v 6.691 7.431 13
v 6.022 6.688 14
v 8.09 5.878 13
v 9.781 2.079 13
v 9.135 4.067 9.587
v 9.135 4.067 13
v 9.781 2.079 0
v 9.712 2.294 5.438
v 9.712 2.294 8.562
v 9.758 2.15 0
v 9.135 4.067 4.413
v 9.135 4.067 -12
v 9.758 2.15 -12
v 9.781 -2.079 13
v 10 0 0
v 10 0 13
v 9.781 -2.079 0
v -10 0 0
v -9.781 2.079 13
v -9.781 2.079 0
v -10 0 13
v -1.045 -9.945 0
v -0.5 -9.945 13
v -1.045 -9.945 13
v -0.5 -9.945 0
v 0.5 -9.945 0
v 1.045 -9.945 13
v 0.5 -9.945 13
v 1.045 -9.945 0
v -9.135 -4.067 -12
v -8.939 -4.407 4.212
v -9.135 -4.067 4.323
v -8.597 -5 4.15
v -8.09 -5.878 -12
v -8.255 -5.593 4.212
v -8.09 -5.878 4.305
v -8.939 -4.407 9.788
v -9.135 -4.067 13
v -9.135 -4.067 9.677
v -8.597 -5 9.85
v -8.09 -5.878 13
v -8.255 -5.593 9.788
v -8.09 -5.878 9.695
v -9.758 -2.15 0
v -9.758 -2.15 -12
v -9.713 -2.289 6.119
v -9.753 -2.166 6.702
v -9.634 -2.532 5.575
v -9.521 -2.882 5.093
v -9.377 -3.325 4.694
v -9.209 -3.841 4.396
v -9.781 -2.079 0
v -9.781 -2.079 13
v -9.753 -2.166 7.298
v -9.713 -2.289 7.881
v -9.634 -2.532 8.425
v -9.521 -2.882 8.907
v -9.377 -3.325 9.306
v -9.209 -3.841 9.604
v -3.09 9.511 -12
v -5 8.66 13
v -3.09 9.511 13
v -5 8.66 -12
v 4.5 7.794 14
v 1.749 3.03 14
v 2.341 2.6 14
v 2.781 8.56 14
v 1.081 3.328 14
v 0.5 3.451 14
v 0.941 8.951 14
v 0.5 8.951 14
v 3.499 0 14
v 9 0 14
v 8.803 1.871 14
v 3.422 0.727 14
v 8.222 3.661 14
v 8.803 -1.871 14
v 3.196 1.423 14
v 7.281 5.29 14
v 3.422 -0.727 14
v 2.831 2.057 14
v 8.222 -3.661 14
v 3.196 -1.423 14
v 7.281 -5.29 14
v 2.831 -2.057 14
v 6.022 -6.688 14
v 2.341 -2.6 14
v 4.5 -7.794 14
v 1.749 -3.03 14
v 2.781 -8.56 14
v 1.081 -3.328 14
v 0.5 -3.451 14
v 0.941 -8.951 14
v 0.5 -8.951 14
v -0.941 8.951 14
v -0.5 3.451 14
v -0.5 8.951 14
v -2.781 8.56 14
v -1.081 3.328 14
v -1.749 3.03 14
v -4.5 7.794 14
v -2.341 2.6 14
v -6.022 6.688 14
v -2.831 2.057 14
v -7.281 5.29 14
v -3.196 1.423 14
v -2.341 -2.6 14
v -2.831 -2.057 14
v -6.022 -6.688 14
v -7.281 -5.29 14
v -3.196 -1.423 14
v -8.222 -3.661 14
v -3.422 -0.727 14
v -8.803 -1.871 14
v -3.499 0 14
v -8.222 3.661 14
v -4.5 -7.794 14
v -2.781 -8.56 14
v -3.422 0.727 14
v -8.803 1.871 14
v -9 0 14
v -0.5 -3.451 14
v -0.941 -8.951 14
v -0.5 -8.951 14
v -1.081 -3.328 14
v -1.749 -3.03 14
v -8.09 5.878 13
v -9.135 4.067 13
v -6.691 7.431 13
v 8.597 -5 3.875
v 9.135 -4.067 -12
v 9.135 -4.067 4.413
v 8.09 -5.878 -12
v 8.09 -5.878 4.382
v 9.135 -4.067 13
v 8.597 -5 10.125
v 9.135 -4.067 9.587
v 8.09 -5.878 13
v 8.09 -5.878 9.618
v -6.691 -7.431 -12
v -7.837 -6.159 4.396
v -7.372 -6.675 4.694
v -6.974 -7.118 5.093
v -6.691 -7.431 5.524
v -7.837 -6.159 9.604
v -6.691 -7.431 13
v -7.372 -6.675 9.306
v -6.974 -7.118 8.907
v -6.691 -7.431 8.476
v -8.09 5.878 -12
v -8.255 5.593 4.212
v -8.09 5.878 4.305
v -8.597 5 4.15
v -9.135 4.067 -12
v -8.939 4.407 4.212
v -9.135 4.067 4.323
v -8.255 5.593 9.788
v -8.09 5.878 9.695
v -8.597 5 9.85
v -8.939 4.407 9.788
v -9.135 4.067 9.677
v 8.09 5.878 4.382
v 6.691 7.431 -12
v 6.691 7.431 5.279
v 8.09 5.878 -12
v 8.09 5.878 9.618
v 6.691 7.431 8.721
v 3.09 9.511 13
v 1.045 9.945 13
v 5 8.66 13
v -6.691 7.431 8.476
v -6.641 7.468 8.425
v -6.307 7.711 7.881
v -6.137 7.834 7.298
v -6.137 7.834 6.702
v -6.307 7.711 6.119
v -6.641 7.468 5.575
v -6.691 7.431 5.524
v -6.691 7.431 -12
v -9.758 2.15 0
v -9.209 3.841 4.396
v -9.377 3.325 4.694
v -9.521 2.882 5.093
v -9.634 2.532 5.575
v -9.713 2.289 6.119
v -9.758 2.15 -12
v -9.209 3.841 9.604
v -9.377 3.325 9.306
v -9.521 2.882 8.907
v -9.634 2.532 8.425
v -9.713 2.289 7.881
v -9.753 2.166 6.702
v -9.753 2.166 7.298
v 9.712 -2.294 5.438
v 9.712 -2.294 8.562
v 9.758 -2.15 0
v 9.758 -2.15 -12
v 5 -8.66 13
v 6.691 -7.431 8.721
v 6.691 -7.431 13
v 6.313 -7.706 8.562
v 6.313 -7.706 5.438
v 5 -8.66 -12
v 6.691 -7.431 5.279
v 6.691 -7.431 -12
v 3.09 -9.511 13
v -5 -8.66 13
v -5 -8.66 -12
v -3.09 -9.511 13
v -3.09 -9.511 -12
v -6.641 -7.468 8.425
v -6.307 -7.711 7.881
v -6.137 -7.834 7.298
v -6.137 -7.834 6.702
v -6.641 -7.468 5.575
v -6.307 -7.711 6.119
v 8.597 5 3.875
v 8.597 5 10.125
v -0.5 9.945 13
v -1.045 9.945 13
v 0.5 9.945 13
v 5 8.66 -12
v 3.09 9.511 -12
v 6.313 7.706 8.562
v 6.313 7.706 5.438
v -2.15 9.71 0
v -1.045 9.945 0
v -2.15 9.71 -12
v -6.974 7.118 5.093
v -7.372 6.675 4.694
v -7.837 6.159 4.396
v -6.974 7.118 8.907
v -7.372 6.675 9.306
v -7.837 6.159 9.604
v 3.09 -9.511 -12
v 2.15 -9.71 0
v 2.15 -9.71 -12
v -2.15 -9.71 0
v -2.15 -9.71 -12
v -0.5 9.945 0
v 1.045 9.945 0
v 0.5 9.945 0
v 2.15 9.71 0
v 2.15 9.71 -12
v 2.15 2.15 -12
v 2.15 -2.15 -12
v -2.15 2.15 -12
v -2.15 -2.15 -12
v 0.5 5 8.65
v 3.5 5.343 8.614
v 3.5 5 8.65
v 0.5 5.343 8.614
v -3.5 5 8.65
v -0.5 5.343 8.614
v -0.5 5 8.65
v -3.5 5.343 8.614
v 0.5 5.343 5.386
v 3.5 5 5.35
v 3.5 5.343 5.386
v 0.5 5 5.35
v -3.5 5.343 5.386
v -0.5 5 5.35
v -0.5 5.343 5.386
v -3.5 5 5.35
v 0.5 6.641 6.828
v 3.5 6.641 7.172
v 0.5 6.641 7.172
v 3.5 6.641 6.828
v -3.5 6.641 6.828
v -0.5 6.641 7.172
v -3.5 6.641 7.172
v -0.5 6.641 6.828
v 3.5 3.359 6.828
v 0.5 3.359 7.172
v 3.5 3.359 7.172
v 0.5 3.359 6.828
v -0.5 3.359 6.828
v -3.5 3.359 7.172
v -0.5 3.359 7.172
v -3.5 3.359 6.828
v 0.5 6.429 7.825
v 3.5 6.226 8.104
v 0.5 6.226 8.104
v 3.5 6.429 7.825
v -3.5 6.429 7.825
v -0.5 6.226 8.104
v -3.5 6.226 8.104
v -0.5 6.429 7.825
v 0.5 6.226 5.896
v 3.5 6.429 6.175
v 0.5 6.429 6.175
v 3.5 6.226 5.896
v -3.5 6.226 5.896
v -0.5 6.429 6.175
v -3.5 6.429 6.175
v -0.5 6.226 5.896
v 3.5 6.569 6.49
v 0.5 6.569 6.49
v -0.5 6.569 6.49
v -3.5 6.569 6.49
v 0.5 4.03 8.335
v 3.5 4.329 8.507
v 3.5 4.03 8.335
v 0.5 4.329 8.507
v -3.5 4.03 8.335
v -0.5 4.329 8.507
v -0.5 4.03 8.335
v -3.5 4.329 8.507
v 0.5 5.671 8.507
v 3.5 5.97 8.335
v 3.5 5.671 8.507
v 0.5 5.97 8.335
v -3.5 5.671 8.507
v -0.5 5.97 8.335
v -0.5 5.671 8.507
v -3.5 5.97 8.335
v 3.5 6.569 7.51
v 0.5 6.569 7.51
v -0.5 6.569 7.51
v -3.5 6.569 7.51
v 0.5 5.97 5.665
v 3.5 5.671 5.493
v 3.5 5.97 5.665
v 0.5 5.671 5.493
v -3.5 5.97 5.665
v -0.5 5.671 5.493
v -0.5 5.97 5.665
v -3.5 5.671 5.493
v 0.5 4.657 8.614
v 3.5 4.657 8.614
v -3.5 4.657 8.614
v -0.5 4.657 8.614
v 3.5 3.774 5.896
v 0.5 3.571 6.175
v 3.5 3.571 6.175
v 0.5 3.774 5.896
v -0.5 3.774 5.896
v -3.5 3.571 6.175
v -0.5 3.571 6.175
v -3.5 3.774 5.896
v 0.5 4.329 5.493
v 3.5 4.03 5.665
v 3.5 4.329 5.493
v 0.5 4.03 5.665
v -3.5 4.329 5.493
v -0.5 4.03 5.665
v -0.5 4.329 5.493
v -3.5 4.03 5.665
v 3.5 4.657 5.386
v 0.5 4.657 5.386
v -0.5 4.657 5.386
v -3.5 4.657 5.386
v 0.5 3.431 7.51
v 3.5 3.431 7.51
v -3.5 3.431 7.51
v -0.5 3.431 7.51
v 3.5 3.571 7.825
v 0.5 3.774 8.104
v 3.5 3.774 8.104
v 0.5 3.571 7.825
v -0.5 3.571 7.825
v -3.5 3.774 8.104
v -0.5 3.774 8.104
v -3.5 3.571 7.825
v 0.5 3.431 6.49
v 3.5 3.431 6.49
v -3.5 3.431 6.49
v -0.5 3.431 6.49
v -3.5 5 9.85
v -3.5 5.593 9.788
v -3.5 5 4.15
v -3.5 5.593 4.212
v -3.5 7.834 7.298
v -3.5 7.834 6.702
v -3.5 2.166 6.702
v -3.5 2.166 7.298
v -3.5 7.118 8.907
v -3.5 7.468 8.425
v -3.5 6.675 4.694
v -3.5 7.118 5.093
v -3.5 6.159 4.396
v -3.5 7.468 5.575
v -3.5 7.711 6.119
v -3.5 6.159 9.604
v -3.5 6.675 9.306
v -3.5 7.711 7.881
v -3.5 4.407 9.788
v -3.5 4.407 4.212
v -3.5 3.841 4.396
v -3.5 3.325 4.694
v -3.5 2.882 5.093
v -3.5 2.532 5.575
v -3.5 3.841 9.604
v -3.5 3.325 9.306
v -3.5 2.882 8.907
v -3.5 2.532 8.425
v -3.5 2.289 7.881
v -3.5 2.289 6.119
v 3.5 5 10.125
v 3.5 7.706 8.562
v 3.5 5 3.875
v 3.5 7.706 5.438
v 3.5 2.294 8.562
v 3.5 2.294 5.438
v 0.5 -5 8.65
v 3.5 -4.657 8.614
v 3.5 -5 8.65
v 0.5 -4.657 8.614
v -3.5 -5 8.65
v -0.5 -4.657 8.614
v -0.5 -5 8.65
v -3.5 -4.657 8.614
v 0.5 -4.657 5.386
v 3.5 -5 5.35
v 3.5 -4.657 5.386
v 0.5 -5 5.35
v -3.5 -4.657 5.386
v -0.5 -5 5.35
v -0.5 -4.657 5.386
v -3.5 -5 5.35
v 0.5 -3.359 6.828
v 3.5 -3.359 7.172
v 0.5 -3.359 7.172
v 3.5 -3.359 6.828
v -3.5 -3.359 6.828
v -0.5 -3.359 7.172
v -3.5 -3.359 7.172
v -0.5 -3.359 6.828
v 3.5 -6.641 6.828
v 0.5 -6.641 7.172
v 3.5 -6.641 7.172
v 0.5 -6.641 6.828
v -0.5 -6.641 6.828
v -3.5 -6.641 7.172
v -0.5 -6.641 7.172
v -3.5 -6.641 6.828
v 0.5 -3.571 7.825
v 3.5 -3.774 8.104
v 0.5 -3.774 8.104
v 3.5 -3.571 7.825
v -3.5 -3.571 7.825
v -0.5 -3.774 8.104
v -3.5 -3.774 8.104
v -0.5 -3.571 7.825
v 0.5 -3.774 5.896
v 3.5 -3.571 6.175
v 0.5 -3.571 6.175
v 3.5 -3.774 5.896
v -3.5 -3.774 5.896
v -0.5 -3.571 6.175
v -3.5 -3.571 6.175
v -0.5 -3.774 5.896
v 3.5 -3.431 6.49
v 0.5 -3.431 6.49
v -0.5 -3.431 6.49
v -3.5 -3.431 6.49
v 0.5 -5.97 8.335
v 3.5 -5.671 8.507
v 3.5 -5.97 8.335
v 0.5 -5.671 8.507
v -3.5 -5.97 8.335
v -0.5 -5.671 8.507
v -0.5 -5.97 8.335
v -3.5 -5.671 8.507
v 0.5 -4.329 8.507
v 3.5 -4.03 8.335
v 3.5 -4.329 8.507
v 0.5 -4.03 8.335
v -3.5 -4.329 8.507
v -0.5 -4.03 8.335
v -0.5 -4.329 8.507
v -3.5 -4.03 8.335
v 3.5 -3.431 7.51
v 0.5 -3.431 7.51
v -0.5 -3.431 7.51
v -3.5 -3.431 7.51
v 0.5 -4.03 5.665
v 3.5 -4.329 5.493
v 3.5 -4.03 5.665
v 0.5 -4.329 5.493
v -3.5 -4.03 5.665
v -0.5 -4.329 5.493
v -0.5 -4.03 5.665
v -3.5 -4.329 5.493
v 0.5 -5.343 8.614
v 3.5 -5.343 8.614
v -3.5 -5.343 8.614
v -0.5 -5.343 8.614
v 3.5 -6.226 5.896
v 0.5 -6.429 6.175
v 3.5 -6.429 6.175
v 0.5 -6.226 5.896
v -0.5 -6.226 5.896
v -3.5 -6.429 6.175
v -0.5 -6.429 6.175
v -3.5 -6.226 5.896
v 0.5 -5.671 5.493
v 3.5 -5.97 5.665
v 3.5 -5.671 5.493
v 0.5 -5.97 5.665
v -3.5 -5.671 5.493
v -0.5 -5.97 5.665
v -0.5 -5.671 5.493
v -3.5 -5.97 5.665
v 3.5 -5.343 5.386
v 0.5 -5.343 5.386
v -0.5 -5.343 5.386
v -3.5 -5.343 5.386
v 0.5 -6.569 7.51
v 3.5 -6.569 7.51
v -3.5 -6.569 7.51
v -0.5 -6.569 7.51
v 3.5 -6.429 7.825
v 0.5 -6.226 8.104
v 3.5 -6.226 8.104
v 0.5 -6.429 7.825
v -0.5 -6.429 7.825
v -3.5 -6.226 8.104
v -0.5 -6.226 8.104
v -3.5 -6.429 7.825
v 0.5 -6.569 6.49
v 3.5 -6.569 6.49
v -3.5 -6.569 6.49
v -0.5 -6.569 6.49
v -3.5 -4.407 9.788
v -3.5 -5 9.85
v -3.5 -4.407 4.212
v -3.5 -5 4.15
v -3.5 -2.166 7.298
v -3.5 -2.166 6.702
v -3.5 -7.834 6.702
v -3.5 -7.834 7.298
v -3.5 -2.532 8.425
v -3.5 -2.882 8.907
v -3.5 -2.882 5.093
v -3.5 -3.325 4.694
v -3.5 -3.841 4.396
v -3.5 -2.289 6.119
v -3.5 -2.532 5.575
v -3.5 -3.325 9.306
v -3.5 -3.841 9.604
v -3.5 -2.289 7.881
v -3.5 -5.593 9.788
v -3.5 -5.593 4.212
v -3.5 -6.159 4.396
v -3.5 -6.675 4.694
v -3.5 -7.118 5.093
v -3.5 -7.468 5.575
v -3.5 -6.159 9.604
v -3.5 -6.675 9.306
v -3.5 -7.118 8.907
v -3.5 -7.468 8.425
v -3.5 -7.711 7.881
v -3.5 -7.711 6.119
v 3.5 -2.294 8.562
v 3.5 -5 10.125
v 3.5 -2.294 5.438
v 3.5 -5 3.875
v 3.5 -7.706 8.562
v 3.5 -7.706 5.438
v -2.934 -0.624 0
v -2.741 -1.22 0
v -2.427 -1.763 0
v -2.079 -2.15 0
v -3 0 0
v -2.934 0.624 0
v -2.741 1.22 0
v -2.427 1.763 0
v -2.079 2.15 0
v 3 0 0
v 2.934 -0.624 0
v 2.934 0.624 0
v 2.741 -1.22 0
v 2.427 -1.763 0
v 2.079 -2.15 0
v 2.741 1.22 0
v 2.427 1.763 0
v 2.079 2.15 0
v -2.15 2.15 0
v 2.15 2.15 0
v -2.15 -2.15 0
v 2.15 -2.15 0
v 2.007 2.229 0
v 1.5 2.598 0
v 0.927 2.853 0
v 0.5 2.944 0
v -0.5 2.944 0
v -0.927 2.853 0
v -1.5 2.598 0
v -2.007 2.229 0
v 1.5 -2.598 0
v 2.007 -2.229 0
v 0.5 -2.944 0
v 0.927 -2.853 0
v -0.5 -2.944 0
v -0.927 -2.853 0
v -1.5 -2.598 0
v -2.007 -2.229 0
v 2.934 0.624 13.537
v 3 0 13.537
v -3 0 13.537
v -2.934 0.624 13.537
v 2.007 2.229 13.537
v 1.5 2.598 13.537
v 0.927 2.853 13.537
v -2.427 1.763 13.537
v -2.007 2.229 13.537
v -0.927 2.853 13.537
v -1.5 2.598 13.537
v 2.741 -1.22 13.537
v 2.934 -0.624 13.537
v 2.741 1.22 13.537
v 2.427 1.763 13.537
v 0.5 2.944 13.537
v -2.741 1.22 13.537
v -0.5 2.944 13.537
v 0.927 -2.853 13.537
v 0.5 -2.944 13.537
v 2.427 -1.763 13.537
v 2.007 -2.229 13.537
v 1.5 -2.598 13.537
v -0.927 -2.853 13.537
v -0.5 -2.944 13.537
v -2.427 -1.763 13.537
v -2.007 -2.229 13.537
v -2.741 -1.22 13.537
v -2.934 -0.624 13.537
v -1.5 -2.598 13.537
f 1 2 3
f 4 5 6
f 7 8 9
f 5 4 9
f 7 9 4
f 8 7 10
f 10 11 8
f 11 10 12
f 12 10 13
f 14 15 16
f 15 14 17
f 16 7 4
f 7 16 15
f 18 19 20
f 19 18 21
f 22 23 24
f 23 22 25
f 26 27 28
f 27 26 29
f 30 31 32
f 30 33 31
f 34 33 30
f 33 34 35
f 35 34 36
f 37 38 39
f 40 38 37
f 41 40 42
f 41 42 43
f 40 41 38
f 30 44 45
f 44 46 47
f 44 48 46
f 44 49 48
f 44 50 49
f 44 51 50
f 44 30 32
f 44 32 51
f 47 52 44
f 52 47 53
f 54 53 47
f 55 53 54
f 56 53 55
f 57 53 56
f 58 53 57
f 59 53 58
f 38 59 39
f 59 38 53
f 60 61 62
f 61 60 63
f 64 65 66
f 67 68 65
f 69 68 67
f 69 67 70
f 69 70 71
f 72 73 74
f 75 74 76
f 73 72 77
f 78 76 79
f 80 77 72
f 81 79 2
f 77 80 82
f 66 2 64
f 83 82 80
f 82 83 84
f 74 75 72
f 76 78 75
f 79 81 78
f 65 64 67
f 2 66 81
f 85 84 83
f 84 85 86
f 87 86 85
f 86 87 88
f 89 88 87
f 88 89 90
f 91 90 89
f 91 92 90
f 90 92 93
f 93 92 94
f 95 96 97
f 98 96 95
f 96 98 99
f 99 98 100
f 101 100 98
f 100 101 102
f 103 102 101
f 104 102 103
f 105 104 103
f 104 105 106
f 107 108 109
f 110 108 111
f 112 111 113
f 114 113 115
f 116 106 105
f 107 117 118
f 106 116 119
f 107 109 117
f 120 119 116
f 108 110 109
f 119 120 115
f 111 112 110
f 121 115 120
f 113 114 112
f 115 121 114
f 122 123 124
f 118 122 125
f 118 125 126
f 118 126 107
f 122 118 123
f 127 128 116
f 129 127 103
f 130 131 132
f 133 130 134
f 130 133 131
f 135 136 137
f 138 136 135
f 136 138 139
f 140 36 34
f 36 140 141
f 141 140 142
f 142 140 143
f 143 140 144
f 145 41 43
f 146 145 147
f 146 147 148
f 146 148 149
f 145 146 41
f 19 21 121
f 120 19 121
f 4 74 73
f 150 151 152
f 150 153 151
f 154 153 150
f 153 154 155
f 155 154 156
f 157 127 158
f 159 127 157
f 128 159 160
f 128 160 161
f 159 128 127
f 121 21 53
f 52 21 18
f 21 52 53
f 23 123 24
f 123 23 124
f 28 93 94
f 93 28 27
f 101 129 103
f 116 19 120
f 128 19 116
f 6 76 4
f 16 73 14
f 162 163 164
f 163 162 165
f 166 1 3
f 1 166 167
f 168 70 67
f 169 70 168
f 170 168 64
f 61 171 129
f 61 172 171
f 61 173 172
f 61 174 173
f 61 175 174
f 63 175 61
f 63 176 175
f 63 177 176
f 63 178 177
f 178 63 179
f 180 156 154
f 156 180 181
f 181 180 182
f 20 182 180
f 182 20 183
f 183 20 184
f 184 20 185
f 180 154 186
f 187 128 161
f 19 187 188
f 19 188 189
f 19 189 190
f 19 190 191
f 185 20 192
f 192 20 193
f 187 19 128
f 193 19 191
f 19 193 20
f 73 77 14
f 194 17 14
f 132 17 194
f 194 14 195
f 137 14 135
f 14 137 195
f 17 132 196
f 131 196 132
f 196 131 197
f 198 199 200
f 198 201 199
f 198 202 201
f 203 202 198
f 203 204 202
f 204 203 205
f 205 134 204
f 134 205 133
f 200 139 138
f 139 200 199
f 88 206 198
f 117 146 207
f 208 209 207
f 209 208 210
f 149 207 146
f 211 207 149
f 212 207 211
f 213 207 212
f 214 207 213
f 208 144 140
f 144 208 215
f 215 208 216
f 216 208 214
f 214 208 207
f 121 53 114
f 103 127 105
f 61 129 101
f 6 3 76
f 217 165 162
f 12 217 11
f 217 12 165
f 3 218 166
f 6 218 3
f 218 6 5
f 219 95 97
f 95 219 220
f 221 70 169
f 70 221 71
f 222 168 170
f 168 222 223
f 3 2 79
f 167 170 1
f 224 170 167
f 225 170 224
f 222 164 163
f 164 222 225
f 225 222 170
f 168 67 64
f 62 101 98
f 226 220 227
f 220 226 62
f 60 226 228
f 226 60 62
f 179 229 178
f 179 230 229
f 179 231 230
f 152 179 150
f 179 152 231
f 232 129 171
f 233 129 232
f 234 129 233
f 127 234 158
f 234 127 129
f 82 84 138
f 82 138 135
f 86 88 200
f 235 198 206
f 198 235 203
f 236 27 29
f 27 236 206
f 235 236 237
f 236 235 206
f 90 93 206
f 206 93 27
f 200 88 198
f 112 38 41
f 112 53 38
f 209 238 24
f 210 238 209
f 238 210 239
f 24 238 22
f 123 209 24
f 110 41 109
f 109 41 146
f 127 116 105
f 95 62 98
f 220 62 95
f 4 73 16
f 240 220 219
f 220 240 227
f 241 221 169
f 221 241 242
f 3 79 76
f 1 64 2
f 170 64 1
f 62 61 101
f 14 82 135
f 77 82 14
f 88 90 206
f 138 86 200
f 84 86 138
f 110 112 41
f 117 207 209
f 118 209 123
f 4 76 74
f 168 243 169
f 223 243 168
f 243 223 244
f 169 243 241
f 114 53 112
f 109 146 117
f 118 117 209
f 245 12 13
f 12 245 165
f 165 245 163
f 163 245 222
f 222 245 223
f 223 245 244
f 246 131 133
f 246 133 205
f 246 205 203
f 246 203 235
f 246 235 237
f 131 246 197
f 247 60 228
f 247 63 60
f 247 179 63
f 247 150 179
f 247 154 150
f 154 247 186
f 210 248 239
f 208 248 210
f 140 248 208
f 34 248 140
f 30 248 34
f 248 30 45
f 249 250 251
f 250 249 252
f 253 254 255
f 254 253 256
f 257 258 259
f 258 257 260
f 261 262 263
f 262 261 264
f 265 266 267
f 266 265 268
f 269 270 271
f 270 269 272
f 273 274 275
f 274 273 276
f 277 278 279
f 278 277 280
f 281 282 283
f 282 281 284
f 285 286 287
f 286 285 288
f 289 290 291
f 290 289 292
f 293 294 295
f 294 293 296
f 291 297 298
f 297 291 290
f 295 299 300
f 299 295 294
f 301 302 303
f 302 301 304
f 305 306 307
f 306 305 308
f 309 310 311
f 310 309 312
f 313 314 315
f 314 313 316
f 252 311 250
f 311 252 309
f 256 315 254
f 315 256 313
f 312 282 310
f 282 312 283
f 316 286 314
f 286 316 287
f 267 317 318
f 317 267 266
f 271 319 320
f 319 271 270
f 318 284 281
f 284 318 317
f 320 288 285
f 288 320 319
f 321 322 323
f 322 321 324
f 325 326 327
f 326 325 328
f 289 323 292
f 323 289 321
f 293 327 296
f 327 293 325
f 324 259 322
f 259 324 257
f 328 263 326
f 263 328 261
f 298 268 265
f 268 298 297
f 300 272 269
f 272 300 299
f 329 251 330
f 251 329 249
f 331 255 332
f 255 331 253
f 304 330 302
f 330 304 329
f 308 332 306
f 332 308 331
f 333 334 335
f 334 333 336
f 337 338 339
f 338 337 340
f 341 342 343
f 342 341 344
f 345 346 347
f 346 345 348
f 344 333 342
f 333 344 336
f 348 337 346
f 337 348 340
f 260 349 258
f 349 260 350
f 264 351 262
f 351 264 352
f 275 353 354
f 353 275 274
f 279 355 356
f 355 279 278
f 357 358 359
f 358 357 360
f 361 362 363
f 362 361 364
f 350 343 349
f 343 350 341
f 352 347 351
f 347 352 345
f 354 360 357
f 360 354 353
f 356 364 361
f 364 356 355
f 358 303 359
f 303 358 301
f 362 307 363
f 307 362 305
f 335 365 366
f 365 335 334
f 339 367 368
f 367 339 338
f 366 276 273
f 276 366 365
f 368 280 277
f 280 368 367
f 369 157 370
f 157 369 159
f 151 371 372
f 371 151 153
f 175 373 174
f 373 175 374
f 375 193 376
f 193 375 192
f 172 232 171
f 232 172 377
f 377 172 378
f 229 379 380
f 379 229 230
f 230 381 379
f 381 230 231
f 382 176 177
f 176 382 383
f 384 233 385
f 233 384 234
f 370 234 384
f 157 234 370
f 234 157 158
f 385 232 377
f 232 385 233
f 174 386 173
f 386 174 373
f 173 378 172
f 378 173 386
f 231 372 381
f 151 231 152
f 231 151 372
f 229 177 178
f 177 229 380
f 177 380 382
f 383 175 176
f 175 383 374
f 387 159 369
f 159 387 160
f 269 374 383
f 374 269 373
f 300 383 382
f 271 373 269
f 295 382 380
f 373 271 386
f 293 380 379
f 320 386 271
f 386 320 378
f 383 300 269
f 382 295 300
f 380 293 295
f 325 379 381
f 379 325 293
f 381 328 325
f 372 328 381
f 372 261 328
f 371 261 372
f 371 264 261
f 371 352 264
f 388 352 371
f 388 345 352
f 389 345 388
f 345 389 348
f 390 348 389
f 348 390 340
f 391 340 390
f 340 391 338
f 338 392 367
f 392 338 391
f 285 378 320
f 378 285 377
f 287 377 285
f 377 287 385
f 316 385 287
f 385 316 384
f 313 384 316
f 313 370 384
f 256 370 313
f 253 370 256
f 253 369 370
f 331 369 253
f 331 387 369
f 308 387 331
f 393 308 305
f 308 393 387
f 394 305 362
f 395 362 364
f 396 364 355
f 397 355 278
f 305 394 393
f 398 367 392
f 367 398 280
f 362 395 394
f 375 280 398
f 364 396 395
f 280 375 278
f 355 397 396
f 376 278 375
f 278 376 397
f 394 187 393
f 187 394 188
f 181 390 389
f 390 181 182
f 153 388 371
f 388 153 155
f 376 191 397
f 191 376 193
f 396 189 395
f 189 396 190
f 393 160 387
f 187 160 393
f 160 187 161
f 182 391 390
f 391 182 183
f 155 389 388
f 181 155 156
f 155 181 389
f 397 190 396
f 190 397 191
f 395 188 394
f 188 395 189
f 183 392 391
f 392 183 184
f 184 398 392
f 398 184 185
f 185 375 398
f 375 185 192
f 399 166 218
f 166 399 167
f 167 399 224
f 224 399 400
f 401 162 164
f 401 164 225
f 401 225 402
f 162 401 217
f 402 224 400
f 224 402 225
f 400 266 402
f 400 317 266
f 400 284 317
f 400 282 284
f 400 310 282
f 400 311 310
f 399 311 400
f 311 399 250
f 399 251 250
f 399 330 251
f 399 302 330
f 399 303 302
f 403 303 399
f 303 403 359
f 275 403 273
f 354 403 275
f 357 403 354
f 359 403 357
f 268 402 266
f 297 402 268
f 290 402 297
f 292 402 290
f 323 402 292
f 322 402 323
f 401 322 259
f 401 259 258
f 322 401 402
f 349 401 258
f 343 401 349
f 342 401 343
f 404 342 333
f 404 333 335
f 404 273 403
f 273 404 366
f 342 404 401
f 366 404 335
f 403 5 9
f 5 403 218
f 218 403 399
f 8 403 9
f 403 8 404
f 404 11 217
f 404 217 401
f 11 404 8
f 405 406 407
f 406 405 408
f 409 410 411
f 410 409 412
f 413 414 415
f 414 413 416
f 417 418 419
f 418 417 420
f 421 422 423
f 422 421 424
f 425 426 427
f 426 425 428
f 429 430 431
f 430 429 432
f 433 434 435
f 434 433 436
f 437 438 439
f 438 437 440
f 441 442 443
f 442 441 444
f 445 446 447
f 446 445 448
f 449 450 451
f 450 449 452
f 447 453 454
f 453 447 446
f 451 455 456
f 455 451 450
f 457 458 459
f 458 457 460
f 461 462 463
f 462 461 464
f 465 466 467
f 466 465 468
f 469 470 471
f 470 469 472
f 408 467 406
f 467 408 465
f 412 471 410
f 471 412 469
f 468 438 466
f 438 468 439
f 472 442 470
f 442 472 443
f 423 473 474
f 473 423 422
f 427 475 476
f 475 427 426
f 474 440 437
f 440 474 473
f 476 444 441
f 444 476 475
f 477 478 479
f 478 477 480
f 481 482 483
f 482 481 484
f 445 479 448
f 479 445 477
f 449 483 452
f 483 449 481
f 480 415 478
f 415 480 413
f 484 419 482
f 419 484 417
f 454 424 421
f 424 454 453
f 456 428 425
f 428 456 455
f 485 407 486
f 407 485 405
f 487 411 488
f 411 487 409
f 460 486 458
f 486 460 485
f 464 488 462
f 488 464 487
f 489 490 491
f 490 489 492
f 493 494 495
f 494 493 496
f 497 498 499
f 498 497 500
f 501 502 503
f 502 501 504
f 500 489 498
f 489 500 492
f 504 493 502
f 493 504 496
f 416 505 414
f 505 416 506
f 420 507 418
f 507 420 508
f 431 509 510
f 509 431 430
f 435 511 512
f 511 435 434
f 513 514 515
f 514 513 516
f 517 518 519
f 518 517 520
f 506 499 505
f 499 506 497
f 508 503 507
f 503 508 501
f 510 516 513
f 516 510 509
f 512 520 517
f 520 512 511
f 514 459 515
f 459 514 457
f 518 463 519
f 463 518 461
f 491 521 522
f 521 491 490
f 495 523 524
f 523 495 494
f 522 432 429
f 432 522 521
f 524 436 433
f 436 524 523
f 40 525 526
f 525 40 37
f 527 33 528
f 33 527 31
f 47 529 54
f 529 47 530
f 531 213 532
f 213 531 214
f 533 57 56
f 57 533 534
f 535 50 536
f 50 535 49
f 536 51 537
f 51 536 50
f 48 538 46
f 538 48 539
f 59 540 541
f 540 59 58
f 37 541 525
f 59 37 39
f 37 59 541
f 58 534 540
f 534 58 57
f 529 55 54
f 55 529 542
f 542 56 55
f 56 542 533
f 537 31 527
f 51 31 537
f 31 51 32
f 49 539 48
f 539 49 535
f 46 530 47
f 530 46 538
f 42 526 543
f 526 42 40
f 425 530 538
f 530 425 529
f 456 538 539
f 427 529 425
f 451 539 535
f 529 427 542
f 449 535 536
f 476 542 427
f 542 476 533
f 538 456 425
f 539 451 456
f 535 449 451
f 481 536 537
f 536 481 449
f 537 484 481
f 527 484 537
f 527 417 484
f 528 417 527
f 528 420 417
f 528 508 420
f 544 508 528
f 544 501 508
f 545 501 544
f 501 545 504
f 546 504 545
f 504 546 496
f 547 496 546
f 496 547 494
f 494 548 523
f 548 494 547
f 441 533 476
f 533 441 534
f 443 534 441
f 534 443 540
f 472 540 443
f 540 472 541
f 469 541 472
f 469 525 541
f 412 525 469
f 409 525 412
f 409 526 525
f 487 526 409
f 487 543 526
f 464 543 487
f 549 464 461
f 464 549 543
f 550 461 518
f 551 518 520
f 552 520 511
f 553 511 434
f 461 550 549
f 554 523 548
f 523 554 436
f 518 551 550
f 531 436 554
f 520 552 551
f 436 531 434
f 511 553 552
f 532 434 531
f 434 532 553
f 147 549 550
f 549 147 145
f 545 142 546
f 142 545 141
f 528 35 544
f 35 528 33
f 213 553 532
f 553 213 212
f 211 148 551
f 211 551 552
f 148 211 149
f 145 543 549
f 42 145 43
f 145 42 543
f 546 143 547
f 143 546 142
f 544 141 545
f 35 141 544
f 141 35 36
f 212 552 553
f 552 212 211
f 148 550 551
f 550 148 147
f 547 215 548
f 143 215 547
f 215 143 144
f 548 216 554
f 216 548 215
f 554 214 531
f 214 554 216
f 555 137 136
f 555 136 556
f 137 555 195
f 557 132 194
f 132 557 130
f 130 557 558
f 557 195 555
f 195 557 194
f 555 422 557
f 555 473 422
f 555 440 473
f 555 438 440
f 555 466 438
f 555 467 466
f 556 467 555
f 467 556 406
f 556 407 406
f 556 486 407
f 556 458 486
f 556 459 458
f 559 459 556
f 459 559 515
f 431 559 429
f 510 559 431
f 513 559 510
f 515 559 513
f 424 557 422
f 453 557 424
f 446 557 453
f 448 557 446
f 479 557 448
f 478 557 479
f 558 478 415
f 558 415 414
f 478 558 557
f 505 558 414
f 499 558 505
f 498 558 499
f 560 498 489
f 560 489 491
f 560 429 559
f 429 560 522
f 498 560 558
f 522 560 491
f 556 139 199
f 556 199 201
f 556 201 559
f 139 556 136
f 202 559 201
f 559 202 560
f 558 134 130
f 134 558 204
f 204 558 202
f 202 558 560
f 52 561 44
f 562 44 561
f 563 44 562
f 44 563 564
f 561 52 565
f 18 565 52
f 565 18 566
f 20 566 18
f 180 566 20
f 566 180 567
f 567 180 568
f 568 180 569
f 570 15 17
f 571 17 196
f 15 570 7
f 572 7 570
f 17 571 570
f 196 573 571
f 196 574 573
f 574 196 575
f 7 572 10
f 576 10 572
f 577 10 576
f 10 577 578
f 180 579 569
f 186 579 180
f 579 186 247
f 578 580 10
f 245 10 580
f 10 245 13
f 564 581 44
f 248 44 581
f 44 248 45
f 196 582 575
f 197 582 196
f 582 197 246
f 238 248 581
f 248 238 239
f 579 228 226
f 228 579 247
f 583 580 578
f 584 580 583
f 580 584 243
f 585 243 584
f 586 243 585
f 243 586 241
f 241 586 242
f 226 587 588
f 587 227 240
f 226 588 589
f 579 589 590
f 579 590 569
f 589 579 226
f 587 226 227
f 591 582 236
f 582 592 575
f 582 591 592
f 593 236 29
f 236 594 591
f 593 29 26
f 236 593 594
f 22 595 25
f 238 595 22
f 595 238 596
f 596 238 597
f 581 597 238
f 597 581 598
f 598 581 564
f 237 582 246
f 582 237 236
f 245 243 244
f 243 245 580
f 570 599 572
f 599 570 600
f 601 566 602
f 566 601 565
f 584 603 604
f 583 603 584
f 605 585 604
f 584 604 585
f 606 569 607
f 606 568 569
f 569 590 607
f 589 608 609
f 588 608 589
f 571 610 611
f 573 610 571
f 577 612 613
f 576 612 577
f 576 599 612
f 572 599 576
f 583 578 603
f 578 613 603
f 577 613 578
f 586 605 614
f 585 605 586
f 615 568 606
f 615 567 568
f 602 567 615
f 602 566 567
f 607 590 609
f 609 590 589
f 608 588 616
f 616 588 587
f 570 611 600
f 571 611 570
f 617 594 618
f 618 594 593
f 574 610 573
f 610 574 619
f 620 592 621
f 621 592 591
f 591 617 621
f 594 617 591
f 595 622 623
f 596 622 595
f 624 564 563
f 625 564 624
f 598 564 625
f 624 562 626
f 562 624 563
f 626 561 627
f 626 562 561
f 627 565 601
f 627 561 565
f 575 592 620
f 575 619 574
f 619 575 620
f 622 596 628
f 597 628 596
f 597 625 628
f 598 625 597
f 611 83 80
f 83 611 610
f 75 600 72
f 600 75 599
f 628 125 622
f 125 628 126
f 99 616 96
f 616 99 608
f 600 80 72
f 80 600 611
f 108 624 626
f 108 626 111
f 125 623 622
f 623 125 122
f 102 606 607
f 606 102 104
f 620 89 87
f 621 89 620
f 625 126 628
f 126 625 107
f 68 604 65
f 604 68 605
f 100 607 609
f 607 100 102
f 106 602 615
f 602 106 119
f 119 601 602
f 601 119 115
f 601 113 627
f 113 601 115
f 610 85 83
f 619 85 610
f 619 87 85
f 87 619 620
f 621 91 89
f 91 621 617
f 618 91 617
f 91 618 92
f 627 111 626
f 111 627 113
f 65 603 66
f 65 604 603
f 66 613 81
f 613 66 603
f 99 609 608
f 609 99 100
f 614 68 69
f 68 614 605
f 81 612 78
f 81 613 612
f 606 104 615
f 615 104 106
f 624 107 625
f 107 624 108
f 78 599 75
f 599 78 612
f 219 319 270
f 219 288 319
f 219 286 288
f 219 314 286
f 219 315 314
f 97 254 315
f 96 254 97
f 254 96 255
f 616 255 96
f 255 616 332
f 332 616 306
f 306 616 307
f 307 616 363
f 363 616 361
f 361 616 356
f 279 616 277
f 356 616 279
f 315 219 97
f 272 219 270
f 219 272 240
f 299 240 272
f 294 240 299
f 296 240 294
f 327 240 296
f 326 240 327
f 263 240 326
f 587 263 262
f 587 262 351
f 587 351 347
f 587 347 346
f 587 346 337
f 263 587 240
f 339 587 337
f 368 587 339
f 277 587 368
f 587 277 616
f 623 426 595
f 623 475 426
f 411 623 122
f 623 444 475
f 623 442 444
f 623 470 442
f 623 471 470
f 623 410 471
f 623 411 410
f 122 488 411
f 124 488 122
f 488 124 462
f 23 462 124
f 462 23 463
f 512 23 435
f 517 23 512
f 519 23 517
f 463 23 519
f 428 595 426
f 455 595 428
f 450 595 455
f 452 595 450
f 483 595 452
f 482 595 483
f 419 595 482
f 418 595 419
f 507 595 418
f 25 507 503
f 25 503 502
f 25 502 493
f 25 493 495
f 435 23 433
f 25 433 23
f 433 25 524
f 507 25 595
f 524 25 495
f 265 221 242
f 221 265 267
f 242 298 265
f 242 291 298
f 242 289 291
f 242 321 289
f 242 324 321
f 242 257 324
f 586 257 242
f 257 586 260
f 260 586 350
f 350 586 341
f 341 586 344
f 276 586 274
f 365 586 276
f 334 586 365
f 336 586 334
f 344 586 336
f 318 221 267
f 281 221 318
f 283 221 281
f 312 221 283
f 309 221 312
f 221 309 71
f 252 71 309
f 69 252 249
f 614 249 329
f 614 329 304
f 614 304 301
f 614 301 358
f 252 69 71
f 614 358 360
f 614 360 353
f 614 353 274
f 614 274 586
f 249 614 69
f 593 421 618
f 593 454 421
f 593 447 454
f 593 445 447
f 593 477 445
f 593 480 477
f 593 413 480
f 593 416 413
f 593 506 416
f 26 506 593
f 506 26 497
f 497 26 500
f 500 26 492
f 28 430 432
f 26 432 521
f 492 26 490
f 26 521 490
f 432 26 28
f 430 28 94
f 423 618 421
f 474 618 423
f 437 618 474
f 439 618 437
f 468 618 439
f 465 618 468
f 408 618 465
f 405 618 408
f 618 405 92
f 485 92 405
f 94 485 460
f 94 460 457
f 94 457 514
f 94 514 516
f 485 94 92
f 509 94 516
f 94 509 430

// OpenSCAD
$fn=30;

// --- Motor end
// Inner diameter.
id1 = 20; 
// Length of hole for shaft 1.
h1 = 14;

// --- M4 threaded shart end
// Inner diameter of hole for shaft 2. This one fits the 
// M4 threded shaft.
id2 = 6;  
// Length of hole for shaft 2.

// --- Body Cylinder
od = 20;
body_offset_from_center = 0;
// Width of the slot along the coupler.
slot_angle = 12;
// Total coupler length;
total_height = h1;

// --- Clamping screws
// Diameter of the screw holes.
screw_hole_diameter = 3.3;
// Diamter of the inset for the screws head.
screw_head_diameter = 5.7;
// Diamter of the inset for the screws nuts.
screw_nut_diameter = 6.25;
// Distance between screw head and nut.
screw_head_to_nut = 7;
// Offset of the screws' centers from the coupler's center.
hole_offset_from_center = 5;
// Offset of the screws' centers from the coupler ends.
hole_offset_from_end = 7;

// Other
shaft_chamfer = 0.5;
body_chamfer = 1;

// Small measures, use to menatain manifold.
eps1 = 0.001;

// Chamfers for the top and bottom shaft holes.
module shafts_chamfers() {
  translate([0, 0, total_height-(id2+shaft_chamfer)/2+eps1]) 
      cylinder(d1=eps1, d2=id2+2*shaft_chamfer, h=(id2+shaft_chamfer)/2);
}

// The blank cylinder of the boddy. Includes top and bottom chamfers.
module body() {
  hull() {
    cylinder(d1=od, d2=od, h=body_chamfer);
    translate([0, 0, total_height-body_chamfer]) cylinder(d1=od, d2=od-2*body_chamfer, h=body_chamfer);
  }
}

// Cut for one screw, with its nut.
module screw(h) {
  translate([0, hole_offset_from_center, h])
  rotate([0, -90, 0])
  union() {
    translate([0, 0, -od/2]) cylinder(d=screw_hole_diameter, h=od); 
    translate([0, 0, screw_head_to_nut/2]) cylinder(d=screw_head_diameter, h=od/2);
    translate([0, 0, -(od + screw_head_to_nut)/2]) cylinder($fn=6, d=screw_nut_diameter, h=od/2);
  }
}

// The clamping wedge slot.
module slot() {
  intersection() {
    translate([0, -((od/2)-body_offset_from_center), -total_height-1]) 
    hull() {
      rotate([0, 0, slot_angle/2]) cube([eps1, 2*od, total_height*2+2]);
      rotate([0, 0, -slot_angle/2]) cube([eps1, 2*od, total_height*2+2]);
    }
    translate([-od/2, 0, -total_height-1]) cube([od, od, total_height*2+2]);
  }
}

// The entire coupler.
module coupler(w=screw_hole_diameter) {
  difference() {
    h = 12;
    union() {
      translate([0, body_offset_from_center, 0]) body();
      translate([0, body_offset_from_center, -h]) cylinder(d=od, h=h);
    }
    translate([0, 0, 0]) cylinder(d=id2, h=total_height*2+eps1); 
    screw(total_height - hole_offset_from_end);
    translate([0, -hole_offset_from_center*2, 0]) screw(total_height - hole_offset_from_end);
    // slot();
    shafts_chamfers();

    translate([0, 0, -h/2]) {
      cube([100,w+1,h+eps1], center=true);
      cube([w+1,100,h], center=true);
    }

    cube([1,100,100], center=true);
  }

}

coupler();
